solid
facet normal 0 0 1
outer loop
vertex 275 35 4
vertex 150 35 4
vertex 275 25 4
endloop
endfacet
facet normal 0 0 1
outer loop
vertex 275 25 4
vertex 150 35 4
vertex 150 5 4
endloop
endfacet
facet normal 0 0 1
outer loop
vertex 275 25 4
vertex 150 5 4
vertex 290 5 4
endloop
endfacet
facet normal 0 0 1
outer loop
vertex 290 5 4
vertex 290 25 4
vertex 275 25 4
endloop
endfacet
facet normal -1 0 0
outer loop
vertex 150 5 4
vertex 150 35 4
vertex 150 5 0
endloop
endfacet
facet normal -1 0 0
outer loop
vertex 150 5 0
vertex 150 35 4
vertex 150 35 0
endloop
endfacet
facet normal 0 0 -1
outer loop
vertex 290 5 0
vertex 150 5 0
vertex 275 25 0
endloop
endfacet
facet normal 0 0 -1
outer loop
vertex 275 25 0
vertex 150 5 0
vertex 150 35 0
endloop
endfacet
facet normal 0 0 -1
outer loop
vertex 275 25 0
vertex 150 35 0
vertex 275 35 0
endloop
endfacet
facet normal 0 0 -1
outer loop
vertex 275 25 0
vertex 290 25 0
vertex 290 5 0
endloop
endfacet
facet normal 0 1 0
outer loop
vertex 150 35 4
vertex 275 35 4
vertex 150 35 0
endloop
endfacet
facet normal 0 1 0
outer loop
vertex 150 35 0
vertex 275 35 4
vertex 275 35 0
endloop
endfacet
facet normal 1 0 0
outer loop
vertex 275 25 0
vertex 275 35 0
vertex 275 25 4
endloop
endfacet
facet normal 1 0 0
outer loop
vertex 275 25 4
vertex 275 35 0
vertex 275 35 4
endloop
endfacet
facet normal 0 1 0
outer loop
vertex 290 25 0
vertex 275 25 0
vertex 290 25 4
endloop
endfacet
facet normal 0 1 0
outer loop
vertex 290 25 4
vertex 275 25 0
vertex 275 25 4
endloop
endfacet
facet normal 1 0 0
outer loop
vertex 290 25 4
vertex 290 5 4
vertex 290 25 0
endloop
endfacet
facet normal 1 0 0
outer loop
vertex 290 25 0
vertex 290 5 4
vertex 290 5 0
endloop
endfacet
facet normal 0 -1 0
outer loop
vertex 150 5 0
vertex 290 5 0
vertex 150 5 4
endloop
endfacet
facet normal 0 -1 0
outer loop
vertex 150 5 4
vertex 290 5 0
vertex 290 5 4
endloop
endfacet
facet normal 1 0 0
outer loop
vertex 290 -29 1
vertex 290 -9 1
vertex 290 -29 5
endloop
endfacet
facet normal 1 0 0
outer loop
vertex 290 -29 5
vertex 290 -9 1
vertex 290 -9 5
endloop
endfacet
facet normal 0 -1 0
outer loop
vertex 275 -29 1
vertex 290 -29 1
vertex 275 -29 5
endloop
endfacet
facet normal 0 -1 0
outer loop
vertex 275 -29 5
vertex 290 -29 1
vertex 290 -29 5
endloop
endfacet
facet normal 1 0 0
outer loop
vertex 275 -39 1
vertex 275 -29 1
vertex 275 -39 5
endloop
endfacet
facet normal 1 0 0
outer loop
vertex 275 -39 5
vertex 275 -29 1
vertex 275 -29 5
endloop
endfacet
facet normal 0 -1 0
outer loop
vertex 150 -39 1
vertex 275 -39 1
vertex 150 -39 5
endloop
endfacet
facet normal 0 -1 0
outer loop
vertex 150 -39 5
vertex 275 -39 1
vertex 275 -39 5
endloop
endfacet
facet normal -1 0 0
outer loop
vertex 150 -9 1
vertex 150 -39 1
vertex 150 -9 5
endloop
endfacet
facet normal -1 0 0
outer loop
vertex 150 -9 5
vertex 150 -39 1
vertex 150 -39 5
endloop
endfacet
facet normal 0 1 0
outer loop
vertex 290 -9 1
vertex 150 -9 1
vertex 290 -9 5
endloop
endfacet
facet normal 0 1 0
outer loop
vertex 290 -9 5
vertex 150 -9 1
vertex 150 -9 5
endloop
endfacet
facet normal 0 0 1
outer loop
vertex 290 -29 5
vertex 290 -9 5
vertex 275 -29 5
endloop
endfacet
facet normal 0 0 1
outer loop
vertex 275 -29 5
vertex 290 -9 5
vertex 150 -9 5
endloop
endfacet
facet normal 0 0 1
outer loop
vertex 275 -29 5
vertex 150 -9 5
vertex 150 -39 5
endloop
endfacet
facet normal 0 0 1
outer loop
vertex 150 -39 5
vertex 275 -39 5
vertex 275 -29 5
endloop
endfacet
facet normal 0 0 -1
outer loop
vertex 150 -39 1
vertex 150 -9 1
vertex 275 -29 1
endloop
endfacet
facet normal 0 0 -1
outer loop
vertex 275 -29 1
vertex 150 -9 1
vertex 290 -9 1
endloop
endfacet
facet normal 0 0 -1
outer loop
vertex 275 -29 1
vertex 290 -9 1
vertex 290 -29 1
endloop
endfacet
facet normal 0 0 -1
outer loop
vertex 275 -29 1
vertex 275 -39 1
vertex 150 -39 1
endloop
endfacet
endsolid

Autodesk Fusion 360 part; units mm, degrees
sketch "Skizze1" plane through (0, 0, 0) normal (0, 0, 1) x (1, 0, 0)
  line L0 (10, 5) -> (290, 5)
  line L1 (290, 5) -> (290, 35)
  line L2 (290, 35) -> (10, 35)
  line L3 (10, 35) -> (10, 5)
  dimension "d1" = 280
  dimension "d2" = 30
extrude "Extrusion1" add sketch "Skizze1" along normal blind 1 makes body 1
sketch "Skizze2" plane through (0, 0, 1) normal (0, 0, 1) x (-1, 0, 0)
  line L0 (-10, -35) -> (-10, -5)
  line L1 (-10, -5) -> (-290, -5)
  line L2 (-290, -5) -> (-290, -35)
  line L3 (-290, -35) -> (-10, -35)
  line L4 (-10, -35) -> (-25, -35)
  line L5 (-25, -35) -> (-25, -25)
  line L6 (-25, -25) -> (-10, -25)
  line L7 (-10, -25) -> (-10, -35)
  line L8 (-290, -35) -> (-275, -35)
  line L9 (-275, -35) -> (-275, -25)
  line L10 (-275, -25) -> (-290, -25)
  line L11 (-290, -25) -> (-290, -35)
  dimension "d5" = 10
  dimension "d6" = 10
  dimension "d7" = 15
  dimension "d8" = 15
extrude "Extrusion2" cut sketch "Skizze2" against normal blind 15 contours L0 L3 L4 L5 L6 L7 | L2 L3 L8 L9 L10 L11 bodies 1
sketch "Skizze3" plane through (0, 0, 1) normal (0, 0, 1) x (-1, 0, 0)
  line L0 (-25, -25) -> (-10, -25)
  line L1 (-10, -25) -> (-10, -5)
  line L2 (-10, -5) -> (-290, -5)
  line L3 (-290, -5) -> (-290, -25)
  line L4 (-290, -25) -> (-275, -25)
  line L5 (-275, -25) -> (-275, -35)
  line L6 (-275, -35) -> (-25, -35)
  line L7 (-25, -35) -> (-25, -25)
  line L8 (-10, -2.919) -> (-150, -2.919)
  line L9 (-150, -2.919) -> (-150, -38)
  line L10 (-150, -38) -> (-10, -38)
  line L11 (-10, -38) -> (-10, -2.919)
  dimension "d11" = 140
extrude "Extrusion3" cut sketch "Skizze3" against normal blind 20 contours L0 L1 L2 L6 L7 L9 L11 | L0 L6 L7 L9 L10 L11 | L2 L8 L9 L11 bodies 1
sketch "Skizze4" plane through (0, 0, 1) normal (0, 0, 1) x (-1, 0, 0)
  line L0 (-150, -35) -> (-150, -5)
  line L1 (-150, -5) -> (-290, -5)
  line L2 (-290, -5) -> (-290, -25)
  line L3 (-290, -25) -> (-275, -25)
  line L4 (-275, -25) -> (-275, -35)
  line L5 (-275, -35) -> (-150, -35)
  line L6 (-150, 0) -> (-290, 0)
  line L7 (-290, 0) -> (-290, 2)
  line L8 (-290, 2) -> (-150, 2)
  line L9 (-150, 2) -> (-150, 0)
  line L10 (-275, 29) -> (-275, 39)
  line L11 (-290, 29) -> (-275, 29)
  line L12 (-275, 39) -> (-150, 39)
  line L13 (-150, 39) -> (-150, 9)
  line L14 (-150, 9) -> (-290, 9)
  line L15 (-290, 9) -> (-290, 29)
extrude "Extrusion4" add sketch "Skizze4" along normal blind 4 separate body contours L10 L11 L12 L13 L14 L15 makes body 2
extrude "Extrusion5" add 1 faces at (191.6667, 21.6667, 1) along direction (0, 0, 1) blind 3 on bodies 1 bodies 1
